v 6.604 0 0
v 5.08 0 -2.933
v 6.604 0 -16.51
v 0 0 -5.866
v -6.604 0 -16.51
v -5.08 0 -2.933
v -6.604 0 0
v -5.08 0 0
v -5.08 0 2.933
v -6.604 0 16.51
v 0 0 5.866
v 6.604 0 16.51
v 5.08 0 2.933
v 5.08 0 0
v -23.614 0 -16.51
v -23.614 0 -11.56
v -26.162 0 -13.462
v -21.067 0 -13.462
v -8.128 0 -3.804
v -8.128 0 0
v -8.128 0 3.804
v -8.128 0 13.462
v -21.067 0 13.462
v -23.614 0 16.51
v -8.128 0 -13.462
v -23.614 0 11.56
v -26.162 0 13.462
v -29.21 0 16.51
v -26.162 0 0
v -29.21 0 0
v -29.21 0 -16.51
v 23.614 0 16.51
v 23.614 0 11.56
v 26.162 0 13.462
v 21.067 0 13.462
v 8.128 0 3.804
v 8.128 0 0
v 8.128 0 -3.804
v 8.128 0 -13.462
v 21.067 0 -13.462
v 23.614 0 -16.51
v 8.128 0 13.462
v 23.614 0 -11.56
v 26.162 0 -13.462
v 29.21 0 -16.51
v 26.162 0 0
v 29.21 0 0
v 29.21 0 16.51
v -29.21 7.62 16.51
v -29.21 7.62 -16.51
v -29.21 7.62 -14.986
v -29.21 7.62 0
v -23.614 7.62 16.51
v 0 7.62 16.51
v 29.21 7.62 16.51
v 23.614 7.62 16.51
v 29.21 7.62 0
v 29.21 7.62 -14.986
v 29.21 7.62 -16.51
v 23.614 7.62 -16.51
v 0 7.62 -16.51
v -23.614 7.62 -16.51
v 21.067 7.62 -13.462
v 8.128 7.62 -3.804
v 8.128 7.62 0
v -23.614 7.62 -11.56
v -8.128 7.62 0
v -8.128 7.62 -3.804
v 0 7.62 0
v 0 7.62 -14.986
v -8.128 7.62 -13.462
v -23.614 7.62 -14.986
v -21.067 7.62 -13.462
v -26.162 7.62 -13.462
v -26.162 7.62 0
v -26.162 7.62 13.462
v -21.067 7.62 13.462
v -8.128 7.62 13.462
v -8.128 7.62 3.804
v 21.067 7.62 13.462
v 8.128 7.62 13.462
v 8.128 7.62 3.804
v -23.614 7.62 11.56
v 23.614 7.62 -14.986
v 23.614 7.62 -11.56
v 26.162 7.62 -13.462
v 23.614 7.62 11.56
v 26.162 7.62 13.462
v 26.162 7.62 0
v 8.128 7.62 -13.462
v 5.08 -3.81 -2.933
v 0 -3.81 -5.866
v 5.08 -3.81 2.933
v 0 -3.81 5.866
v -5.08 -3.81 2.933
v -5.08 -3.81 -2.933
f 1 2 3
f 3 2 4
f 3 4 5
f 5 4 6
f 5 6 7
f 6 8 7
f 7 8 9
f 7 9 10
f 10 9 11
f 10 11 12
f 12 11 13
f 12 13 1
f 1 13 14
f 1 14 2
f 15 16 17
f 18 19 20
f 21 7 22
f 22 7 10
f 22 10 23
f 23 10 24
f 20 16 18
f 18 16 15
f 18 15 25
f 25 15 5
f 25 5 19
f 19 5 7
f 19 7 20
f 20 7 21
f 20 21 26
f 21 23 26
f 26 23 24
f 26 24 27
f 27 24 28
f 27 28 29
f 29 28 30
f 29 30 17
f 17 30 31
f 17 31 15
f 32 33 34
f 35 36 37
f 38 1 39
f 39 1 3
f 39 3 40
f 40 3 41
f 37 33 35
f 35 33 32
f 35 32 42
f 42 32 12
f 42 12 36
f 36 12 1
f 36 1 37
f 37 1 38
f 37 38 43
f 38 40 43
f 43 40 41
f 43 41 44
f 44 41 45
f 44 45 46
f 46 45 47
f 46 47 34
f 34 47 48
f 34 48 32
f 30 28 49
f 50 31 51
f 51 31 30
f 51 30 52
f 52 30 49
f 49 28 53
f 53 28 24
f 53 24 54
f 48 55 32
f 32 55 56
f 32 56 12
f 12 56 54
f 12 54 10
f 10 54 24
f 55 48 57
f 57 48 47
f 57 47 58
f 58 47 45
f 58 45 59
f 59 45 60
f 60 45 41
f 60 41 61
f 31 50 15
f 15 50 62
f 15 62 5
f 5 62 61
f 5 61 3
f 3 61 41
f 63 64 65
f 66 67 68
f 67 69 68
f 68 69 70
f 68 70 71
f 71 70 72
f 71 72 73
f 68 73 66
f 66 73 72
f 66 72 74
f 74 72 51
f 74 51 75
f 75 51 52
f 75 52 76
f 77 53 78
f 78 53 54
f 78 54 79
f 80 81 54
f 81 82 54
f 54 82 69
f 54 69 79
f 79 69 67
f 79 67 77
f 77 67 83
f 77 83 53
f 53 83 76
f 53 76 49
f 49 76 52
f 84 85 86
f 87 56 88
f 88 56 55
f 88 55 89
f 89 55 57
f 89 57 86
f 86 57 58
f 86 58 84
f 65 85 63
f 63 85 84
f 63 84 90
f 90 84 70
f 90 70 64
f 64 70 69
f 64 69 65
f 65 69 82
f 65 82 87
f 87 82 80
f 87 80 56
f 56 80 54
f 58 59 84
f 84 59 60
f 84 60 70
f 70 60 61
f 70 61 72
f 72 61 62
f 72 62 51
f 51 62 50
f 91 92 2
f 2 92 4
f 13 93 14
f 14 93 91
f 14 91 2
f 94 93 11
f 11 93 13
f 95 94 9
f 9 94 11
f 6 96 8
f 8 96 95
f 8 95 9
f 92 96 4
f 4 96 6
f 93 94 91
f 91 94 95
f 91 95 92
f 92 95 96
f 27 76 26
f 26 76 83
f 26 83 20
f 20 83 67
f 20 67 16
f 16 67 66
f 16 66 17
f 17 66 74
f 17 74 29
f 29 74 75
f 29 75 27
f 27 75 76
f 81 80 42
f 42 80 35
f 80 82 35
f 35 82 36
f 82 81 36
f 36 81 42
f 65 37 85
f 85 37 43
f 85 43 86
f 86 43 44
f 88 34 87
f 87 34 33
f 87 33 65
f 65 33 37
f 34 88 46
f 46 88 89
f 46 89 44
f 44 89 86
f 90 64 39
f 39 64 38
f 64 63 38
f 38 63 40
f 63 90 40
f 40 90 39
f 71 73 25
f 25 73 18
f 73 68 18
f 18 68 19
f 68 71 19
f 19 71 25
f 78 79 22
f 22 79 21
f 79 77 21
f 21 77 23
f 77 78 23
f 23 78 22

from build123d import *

# Parameters (mm, degrees)
SKETCH1_W           = 58.42
SKETCH1_H           = 33.02
BOSS_EXTRUDE1_DEPTH = 7.62
BOSS_EXTRUDE2_DEPTH = 3.81
CUT_EXTRUDE1_DEPTH  = 35.407391648


with BuildPart() as part:
    # Sketch1 → Boss-Extrude1 (new body)
    with BuildSketch(Plane(origin=(0, 0, 0), x_dir=(1, 0, 0), z_dir=(0, 1, 0))):
        Rectangle(SKETCH1_W, SKETCH1_H)
    extrude(amount=BOSS_EXTRUDE1_DEPTH)

    # Sketch2 → Boss-Extrude2 (add)
    with BuildSketch(Plane.XZ):
        Polygon((5.08, -2.932939367), (5.08, 2.932939367), (0, 5.865878735), (-5.08, 2.932939367), (-5.08, -2.932939367), (0, -5.865878735), align=None)
    extrude(amount=BOSS_EXTRUDE2_DEPTH)

    # Sketch3 → Cut-Extrude1 (cut, through all)
    with BuildSketch(Plane(origin=(0, 0, 0), x_dir=(-1, 0, 0), z_dir=(0, -1, 0))):
        Polygon((26.162, -13.462), (26.162, 13.462), (8.128, 0), align=None)
        Polygon((8.128, -13.462), (21.066651169, -13.462), (8.128, -3.803570254), align=None)
        Polygon((21.066651169, 13.462), (8.128, 3.803570254), (8.128, 13.462), align=None)
        Polygon((-21.066651169, -13.462), (-8.128, -3.803570254), (-8.128, -13.462), align=None)
        Polygon((-8.128, 13.462), (-21.066651169, 13.462), (-8.128, 3.803570254), align=None)
        Polygon((-8.128, 0), (-26.162, -13.462), (-26.162, 13.462), align=None)
    extrude(amount=-CUT_EXTRUDE1_DEPTH, mode=Mode.SUBTRACT)


solid = part.part
